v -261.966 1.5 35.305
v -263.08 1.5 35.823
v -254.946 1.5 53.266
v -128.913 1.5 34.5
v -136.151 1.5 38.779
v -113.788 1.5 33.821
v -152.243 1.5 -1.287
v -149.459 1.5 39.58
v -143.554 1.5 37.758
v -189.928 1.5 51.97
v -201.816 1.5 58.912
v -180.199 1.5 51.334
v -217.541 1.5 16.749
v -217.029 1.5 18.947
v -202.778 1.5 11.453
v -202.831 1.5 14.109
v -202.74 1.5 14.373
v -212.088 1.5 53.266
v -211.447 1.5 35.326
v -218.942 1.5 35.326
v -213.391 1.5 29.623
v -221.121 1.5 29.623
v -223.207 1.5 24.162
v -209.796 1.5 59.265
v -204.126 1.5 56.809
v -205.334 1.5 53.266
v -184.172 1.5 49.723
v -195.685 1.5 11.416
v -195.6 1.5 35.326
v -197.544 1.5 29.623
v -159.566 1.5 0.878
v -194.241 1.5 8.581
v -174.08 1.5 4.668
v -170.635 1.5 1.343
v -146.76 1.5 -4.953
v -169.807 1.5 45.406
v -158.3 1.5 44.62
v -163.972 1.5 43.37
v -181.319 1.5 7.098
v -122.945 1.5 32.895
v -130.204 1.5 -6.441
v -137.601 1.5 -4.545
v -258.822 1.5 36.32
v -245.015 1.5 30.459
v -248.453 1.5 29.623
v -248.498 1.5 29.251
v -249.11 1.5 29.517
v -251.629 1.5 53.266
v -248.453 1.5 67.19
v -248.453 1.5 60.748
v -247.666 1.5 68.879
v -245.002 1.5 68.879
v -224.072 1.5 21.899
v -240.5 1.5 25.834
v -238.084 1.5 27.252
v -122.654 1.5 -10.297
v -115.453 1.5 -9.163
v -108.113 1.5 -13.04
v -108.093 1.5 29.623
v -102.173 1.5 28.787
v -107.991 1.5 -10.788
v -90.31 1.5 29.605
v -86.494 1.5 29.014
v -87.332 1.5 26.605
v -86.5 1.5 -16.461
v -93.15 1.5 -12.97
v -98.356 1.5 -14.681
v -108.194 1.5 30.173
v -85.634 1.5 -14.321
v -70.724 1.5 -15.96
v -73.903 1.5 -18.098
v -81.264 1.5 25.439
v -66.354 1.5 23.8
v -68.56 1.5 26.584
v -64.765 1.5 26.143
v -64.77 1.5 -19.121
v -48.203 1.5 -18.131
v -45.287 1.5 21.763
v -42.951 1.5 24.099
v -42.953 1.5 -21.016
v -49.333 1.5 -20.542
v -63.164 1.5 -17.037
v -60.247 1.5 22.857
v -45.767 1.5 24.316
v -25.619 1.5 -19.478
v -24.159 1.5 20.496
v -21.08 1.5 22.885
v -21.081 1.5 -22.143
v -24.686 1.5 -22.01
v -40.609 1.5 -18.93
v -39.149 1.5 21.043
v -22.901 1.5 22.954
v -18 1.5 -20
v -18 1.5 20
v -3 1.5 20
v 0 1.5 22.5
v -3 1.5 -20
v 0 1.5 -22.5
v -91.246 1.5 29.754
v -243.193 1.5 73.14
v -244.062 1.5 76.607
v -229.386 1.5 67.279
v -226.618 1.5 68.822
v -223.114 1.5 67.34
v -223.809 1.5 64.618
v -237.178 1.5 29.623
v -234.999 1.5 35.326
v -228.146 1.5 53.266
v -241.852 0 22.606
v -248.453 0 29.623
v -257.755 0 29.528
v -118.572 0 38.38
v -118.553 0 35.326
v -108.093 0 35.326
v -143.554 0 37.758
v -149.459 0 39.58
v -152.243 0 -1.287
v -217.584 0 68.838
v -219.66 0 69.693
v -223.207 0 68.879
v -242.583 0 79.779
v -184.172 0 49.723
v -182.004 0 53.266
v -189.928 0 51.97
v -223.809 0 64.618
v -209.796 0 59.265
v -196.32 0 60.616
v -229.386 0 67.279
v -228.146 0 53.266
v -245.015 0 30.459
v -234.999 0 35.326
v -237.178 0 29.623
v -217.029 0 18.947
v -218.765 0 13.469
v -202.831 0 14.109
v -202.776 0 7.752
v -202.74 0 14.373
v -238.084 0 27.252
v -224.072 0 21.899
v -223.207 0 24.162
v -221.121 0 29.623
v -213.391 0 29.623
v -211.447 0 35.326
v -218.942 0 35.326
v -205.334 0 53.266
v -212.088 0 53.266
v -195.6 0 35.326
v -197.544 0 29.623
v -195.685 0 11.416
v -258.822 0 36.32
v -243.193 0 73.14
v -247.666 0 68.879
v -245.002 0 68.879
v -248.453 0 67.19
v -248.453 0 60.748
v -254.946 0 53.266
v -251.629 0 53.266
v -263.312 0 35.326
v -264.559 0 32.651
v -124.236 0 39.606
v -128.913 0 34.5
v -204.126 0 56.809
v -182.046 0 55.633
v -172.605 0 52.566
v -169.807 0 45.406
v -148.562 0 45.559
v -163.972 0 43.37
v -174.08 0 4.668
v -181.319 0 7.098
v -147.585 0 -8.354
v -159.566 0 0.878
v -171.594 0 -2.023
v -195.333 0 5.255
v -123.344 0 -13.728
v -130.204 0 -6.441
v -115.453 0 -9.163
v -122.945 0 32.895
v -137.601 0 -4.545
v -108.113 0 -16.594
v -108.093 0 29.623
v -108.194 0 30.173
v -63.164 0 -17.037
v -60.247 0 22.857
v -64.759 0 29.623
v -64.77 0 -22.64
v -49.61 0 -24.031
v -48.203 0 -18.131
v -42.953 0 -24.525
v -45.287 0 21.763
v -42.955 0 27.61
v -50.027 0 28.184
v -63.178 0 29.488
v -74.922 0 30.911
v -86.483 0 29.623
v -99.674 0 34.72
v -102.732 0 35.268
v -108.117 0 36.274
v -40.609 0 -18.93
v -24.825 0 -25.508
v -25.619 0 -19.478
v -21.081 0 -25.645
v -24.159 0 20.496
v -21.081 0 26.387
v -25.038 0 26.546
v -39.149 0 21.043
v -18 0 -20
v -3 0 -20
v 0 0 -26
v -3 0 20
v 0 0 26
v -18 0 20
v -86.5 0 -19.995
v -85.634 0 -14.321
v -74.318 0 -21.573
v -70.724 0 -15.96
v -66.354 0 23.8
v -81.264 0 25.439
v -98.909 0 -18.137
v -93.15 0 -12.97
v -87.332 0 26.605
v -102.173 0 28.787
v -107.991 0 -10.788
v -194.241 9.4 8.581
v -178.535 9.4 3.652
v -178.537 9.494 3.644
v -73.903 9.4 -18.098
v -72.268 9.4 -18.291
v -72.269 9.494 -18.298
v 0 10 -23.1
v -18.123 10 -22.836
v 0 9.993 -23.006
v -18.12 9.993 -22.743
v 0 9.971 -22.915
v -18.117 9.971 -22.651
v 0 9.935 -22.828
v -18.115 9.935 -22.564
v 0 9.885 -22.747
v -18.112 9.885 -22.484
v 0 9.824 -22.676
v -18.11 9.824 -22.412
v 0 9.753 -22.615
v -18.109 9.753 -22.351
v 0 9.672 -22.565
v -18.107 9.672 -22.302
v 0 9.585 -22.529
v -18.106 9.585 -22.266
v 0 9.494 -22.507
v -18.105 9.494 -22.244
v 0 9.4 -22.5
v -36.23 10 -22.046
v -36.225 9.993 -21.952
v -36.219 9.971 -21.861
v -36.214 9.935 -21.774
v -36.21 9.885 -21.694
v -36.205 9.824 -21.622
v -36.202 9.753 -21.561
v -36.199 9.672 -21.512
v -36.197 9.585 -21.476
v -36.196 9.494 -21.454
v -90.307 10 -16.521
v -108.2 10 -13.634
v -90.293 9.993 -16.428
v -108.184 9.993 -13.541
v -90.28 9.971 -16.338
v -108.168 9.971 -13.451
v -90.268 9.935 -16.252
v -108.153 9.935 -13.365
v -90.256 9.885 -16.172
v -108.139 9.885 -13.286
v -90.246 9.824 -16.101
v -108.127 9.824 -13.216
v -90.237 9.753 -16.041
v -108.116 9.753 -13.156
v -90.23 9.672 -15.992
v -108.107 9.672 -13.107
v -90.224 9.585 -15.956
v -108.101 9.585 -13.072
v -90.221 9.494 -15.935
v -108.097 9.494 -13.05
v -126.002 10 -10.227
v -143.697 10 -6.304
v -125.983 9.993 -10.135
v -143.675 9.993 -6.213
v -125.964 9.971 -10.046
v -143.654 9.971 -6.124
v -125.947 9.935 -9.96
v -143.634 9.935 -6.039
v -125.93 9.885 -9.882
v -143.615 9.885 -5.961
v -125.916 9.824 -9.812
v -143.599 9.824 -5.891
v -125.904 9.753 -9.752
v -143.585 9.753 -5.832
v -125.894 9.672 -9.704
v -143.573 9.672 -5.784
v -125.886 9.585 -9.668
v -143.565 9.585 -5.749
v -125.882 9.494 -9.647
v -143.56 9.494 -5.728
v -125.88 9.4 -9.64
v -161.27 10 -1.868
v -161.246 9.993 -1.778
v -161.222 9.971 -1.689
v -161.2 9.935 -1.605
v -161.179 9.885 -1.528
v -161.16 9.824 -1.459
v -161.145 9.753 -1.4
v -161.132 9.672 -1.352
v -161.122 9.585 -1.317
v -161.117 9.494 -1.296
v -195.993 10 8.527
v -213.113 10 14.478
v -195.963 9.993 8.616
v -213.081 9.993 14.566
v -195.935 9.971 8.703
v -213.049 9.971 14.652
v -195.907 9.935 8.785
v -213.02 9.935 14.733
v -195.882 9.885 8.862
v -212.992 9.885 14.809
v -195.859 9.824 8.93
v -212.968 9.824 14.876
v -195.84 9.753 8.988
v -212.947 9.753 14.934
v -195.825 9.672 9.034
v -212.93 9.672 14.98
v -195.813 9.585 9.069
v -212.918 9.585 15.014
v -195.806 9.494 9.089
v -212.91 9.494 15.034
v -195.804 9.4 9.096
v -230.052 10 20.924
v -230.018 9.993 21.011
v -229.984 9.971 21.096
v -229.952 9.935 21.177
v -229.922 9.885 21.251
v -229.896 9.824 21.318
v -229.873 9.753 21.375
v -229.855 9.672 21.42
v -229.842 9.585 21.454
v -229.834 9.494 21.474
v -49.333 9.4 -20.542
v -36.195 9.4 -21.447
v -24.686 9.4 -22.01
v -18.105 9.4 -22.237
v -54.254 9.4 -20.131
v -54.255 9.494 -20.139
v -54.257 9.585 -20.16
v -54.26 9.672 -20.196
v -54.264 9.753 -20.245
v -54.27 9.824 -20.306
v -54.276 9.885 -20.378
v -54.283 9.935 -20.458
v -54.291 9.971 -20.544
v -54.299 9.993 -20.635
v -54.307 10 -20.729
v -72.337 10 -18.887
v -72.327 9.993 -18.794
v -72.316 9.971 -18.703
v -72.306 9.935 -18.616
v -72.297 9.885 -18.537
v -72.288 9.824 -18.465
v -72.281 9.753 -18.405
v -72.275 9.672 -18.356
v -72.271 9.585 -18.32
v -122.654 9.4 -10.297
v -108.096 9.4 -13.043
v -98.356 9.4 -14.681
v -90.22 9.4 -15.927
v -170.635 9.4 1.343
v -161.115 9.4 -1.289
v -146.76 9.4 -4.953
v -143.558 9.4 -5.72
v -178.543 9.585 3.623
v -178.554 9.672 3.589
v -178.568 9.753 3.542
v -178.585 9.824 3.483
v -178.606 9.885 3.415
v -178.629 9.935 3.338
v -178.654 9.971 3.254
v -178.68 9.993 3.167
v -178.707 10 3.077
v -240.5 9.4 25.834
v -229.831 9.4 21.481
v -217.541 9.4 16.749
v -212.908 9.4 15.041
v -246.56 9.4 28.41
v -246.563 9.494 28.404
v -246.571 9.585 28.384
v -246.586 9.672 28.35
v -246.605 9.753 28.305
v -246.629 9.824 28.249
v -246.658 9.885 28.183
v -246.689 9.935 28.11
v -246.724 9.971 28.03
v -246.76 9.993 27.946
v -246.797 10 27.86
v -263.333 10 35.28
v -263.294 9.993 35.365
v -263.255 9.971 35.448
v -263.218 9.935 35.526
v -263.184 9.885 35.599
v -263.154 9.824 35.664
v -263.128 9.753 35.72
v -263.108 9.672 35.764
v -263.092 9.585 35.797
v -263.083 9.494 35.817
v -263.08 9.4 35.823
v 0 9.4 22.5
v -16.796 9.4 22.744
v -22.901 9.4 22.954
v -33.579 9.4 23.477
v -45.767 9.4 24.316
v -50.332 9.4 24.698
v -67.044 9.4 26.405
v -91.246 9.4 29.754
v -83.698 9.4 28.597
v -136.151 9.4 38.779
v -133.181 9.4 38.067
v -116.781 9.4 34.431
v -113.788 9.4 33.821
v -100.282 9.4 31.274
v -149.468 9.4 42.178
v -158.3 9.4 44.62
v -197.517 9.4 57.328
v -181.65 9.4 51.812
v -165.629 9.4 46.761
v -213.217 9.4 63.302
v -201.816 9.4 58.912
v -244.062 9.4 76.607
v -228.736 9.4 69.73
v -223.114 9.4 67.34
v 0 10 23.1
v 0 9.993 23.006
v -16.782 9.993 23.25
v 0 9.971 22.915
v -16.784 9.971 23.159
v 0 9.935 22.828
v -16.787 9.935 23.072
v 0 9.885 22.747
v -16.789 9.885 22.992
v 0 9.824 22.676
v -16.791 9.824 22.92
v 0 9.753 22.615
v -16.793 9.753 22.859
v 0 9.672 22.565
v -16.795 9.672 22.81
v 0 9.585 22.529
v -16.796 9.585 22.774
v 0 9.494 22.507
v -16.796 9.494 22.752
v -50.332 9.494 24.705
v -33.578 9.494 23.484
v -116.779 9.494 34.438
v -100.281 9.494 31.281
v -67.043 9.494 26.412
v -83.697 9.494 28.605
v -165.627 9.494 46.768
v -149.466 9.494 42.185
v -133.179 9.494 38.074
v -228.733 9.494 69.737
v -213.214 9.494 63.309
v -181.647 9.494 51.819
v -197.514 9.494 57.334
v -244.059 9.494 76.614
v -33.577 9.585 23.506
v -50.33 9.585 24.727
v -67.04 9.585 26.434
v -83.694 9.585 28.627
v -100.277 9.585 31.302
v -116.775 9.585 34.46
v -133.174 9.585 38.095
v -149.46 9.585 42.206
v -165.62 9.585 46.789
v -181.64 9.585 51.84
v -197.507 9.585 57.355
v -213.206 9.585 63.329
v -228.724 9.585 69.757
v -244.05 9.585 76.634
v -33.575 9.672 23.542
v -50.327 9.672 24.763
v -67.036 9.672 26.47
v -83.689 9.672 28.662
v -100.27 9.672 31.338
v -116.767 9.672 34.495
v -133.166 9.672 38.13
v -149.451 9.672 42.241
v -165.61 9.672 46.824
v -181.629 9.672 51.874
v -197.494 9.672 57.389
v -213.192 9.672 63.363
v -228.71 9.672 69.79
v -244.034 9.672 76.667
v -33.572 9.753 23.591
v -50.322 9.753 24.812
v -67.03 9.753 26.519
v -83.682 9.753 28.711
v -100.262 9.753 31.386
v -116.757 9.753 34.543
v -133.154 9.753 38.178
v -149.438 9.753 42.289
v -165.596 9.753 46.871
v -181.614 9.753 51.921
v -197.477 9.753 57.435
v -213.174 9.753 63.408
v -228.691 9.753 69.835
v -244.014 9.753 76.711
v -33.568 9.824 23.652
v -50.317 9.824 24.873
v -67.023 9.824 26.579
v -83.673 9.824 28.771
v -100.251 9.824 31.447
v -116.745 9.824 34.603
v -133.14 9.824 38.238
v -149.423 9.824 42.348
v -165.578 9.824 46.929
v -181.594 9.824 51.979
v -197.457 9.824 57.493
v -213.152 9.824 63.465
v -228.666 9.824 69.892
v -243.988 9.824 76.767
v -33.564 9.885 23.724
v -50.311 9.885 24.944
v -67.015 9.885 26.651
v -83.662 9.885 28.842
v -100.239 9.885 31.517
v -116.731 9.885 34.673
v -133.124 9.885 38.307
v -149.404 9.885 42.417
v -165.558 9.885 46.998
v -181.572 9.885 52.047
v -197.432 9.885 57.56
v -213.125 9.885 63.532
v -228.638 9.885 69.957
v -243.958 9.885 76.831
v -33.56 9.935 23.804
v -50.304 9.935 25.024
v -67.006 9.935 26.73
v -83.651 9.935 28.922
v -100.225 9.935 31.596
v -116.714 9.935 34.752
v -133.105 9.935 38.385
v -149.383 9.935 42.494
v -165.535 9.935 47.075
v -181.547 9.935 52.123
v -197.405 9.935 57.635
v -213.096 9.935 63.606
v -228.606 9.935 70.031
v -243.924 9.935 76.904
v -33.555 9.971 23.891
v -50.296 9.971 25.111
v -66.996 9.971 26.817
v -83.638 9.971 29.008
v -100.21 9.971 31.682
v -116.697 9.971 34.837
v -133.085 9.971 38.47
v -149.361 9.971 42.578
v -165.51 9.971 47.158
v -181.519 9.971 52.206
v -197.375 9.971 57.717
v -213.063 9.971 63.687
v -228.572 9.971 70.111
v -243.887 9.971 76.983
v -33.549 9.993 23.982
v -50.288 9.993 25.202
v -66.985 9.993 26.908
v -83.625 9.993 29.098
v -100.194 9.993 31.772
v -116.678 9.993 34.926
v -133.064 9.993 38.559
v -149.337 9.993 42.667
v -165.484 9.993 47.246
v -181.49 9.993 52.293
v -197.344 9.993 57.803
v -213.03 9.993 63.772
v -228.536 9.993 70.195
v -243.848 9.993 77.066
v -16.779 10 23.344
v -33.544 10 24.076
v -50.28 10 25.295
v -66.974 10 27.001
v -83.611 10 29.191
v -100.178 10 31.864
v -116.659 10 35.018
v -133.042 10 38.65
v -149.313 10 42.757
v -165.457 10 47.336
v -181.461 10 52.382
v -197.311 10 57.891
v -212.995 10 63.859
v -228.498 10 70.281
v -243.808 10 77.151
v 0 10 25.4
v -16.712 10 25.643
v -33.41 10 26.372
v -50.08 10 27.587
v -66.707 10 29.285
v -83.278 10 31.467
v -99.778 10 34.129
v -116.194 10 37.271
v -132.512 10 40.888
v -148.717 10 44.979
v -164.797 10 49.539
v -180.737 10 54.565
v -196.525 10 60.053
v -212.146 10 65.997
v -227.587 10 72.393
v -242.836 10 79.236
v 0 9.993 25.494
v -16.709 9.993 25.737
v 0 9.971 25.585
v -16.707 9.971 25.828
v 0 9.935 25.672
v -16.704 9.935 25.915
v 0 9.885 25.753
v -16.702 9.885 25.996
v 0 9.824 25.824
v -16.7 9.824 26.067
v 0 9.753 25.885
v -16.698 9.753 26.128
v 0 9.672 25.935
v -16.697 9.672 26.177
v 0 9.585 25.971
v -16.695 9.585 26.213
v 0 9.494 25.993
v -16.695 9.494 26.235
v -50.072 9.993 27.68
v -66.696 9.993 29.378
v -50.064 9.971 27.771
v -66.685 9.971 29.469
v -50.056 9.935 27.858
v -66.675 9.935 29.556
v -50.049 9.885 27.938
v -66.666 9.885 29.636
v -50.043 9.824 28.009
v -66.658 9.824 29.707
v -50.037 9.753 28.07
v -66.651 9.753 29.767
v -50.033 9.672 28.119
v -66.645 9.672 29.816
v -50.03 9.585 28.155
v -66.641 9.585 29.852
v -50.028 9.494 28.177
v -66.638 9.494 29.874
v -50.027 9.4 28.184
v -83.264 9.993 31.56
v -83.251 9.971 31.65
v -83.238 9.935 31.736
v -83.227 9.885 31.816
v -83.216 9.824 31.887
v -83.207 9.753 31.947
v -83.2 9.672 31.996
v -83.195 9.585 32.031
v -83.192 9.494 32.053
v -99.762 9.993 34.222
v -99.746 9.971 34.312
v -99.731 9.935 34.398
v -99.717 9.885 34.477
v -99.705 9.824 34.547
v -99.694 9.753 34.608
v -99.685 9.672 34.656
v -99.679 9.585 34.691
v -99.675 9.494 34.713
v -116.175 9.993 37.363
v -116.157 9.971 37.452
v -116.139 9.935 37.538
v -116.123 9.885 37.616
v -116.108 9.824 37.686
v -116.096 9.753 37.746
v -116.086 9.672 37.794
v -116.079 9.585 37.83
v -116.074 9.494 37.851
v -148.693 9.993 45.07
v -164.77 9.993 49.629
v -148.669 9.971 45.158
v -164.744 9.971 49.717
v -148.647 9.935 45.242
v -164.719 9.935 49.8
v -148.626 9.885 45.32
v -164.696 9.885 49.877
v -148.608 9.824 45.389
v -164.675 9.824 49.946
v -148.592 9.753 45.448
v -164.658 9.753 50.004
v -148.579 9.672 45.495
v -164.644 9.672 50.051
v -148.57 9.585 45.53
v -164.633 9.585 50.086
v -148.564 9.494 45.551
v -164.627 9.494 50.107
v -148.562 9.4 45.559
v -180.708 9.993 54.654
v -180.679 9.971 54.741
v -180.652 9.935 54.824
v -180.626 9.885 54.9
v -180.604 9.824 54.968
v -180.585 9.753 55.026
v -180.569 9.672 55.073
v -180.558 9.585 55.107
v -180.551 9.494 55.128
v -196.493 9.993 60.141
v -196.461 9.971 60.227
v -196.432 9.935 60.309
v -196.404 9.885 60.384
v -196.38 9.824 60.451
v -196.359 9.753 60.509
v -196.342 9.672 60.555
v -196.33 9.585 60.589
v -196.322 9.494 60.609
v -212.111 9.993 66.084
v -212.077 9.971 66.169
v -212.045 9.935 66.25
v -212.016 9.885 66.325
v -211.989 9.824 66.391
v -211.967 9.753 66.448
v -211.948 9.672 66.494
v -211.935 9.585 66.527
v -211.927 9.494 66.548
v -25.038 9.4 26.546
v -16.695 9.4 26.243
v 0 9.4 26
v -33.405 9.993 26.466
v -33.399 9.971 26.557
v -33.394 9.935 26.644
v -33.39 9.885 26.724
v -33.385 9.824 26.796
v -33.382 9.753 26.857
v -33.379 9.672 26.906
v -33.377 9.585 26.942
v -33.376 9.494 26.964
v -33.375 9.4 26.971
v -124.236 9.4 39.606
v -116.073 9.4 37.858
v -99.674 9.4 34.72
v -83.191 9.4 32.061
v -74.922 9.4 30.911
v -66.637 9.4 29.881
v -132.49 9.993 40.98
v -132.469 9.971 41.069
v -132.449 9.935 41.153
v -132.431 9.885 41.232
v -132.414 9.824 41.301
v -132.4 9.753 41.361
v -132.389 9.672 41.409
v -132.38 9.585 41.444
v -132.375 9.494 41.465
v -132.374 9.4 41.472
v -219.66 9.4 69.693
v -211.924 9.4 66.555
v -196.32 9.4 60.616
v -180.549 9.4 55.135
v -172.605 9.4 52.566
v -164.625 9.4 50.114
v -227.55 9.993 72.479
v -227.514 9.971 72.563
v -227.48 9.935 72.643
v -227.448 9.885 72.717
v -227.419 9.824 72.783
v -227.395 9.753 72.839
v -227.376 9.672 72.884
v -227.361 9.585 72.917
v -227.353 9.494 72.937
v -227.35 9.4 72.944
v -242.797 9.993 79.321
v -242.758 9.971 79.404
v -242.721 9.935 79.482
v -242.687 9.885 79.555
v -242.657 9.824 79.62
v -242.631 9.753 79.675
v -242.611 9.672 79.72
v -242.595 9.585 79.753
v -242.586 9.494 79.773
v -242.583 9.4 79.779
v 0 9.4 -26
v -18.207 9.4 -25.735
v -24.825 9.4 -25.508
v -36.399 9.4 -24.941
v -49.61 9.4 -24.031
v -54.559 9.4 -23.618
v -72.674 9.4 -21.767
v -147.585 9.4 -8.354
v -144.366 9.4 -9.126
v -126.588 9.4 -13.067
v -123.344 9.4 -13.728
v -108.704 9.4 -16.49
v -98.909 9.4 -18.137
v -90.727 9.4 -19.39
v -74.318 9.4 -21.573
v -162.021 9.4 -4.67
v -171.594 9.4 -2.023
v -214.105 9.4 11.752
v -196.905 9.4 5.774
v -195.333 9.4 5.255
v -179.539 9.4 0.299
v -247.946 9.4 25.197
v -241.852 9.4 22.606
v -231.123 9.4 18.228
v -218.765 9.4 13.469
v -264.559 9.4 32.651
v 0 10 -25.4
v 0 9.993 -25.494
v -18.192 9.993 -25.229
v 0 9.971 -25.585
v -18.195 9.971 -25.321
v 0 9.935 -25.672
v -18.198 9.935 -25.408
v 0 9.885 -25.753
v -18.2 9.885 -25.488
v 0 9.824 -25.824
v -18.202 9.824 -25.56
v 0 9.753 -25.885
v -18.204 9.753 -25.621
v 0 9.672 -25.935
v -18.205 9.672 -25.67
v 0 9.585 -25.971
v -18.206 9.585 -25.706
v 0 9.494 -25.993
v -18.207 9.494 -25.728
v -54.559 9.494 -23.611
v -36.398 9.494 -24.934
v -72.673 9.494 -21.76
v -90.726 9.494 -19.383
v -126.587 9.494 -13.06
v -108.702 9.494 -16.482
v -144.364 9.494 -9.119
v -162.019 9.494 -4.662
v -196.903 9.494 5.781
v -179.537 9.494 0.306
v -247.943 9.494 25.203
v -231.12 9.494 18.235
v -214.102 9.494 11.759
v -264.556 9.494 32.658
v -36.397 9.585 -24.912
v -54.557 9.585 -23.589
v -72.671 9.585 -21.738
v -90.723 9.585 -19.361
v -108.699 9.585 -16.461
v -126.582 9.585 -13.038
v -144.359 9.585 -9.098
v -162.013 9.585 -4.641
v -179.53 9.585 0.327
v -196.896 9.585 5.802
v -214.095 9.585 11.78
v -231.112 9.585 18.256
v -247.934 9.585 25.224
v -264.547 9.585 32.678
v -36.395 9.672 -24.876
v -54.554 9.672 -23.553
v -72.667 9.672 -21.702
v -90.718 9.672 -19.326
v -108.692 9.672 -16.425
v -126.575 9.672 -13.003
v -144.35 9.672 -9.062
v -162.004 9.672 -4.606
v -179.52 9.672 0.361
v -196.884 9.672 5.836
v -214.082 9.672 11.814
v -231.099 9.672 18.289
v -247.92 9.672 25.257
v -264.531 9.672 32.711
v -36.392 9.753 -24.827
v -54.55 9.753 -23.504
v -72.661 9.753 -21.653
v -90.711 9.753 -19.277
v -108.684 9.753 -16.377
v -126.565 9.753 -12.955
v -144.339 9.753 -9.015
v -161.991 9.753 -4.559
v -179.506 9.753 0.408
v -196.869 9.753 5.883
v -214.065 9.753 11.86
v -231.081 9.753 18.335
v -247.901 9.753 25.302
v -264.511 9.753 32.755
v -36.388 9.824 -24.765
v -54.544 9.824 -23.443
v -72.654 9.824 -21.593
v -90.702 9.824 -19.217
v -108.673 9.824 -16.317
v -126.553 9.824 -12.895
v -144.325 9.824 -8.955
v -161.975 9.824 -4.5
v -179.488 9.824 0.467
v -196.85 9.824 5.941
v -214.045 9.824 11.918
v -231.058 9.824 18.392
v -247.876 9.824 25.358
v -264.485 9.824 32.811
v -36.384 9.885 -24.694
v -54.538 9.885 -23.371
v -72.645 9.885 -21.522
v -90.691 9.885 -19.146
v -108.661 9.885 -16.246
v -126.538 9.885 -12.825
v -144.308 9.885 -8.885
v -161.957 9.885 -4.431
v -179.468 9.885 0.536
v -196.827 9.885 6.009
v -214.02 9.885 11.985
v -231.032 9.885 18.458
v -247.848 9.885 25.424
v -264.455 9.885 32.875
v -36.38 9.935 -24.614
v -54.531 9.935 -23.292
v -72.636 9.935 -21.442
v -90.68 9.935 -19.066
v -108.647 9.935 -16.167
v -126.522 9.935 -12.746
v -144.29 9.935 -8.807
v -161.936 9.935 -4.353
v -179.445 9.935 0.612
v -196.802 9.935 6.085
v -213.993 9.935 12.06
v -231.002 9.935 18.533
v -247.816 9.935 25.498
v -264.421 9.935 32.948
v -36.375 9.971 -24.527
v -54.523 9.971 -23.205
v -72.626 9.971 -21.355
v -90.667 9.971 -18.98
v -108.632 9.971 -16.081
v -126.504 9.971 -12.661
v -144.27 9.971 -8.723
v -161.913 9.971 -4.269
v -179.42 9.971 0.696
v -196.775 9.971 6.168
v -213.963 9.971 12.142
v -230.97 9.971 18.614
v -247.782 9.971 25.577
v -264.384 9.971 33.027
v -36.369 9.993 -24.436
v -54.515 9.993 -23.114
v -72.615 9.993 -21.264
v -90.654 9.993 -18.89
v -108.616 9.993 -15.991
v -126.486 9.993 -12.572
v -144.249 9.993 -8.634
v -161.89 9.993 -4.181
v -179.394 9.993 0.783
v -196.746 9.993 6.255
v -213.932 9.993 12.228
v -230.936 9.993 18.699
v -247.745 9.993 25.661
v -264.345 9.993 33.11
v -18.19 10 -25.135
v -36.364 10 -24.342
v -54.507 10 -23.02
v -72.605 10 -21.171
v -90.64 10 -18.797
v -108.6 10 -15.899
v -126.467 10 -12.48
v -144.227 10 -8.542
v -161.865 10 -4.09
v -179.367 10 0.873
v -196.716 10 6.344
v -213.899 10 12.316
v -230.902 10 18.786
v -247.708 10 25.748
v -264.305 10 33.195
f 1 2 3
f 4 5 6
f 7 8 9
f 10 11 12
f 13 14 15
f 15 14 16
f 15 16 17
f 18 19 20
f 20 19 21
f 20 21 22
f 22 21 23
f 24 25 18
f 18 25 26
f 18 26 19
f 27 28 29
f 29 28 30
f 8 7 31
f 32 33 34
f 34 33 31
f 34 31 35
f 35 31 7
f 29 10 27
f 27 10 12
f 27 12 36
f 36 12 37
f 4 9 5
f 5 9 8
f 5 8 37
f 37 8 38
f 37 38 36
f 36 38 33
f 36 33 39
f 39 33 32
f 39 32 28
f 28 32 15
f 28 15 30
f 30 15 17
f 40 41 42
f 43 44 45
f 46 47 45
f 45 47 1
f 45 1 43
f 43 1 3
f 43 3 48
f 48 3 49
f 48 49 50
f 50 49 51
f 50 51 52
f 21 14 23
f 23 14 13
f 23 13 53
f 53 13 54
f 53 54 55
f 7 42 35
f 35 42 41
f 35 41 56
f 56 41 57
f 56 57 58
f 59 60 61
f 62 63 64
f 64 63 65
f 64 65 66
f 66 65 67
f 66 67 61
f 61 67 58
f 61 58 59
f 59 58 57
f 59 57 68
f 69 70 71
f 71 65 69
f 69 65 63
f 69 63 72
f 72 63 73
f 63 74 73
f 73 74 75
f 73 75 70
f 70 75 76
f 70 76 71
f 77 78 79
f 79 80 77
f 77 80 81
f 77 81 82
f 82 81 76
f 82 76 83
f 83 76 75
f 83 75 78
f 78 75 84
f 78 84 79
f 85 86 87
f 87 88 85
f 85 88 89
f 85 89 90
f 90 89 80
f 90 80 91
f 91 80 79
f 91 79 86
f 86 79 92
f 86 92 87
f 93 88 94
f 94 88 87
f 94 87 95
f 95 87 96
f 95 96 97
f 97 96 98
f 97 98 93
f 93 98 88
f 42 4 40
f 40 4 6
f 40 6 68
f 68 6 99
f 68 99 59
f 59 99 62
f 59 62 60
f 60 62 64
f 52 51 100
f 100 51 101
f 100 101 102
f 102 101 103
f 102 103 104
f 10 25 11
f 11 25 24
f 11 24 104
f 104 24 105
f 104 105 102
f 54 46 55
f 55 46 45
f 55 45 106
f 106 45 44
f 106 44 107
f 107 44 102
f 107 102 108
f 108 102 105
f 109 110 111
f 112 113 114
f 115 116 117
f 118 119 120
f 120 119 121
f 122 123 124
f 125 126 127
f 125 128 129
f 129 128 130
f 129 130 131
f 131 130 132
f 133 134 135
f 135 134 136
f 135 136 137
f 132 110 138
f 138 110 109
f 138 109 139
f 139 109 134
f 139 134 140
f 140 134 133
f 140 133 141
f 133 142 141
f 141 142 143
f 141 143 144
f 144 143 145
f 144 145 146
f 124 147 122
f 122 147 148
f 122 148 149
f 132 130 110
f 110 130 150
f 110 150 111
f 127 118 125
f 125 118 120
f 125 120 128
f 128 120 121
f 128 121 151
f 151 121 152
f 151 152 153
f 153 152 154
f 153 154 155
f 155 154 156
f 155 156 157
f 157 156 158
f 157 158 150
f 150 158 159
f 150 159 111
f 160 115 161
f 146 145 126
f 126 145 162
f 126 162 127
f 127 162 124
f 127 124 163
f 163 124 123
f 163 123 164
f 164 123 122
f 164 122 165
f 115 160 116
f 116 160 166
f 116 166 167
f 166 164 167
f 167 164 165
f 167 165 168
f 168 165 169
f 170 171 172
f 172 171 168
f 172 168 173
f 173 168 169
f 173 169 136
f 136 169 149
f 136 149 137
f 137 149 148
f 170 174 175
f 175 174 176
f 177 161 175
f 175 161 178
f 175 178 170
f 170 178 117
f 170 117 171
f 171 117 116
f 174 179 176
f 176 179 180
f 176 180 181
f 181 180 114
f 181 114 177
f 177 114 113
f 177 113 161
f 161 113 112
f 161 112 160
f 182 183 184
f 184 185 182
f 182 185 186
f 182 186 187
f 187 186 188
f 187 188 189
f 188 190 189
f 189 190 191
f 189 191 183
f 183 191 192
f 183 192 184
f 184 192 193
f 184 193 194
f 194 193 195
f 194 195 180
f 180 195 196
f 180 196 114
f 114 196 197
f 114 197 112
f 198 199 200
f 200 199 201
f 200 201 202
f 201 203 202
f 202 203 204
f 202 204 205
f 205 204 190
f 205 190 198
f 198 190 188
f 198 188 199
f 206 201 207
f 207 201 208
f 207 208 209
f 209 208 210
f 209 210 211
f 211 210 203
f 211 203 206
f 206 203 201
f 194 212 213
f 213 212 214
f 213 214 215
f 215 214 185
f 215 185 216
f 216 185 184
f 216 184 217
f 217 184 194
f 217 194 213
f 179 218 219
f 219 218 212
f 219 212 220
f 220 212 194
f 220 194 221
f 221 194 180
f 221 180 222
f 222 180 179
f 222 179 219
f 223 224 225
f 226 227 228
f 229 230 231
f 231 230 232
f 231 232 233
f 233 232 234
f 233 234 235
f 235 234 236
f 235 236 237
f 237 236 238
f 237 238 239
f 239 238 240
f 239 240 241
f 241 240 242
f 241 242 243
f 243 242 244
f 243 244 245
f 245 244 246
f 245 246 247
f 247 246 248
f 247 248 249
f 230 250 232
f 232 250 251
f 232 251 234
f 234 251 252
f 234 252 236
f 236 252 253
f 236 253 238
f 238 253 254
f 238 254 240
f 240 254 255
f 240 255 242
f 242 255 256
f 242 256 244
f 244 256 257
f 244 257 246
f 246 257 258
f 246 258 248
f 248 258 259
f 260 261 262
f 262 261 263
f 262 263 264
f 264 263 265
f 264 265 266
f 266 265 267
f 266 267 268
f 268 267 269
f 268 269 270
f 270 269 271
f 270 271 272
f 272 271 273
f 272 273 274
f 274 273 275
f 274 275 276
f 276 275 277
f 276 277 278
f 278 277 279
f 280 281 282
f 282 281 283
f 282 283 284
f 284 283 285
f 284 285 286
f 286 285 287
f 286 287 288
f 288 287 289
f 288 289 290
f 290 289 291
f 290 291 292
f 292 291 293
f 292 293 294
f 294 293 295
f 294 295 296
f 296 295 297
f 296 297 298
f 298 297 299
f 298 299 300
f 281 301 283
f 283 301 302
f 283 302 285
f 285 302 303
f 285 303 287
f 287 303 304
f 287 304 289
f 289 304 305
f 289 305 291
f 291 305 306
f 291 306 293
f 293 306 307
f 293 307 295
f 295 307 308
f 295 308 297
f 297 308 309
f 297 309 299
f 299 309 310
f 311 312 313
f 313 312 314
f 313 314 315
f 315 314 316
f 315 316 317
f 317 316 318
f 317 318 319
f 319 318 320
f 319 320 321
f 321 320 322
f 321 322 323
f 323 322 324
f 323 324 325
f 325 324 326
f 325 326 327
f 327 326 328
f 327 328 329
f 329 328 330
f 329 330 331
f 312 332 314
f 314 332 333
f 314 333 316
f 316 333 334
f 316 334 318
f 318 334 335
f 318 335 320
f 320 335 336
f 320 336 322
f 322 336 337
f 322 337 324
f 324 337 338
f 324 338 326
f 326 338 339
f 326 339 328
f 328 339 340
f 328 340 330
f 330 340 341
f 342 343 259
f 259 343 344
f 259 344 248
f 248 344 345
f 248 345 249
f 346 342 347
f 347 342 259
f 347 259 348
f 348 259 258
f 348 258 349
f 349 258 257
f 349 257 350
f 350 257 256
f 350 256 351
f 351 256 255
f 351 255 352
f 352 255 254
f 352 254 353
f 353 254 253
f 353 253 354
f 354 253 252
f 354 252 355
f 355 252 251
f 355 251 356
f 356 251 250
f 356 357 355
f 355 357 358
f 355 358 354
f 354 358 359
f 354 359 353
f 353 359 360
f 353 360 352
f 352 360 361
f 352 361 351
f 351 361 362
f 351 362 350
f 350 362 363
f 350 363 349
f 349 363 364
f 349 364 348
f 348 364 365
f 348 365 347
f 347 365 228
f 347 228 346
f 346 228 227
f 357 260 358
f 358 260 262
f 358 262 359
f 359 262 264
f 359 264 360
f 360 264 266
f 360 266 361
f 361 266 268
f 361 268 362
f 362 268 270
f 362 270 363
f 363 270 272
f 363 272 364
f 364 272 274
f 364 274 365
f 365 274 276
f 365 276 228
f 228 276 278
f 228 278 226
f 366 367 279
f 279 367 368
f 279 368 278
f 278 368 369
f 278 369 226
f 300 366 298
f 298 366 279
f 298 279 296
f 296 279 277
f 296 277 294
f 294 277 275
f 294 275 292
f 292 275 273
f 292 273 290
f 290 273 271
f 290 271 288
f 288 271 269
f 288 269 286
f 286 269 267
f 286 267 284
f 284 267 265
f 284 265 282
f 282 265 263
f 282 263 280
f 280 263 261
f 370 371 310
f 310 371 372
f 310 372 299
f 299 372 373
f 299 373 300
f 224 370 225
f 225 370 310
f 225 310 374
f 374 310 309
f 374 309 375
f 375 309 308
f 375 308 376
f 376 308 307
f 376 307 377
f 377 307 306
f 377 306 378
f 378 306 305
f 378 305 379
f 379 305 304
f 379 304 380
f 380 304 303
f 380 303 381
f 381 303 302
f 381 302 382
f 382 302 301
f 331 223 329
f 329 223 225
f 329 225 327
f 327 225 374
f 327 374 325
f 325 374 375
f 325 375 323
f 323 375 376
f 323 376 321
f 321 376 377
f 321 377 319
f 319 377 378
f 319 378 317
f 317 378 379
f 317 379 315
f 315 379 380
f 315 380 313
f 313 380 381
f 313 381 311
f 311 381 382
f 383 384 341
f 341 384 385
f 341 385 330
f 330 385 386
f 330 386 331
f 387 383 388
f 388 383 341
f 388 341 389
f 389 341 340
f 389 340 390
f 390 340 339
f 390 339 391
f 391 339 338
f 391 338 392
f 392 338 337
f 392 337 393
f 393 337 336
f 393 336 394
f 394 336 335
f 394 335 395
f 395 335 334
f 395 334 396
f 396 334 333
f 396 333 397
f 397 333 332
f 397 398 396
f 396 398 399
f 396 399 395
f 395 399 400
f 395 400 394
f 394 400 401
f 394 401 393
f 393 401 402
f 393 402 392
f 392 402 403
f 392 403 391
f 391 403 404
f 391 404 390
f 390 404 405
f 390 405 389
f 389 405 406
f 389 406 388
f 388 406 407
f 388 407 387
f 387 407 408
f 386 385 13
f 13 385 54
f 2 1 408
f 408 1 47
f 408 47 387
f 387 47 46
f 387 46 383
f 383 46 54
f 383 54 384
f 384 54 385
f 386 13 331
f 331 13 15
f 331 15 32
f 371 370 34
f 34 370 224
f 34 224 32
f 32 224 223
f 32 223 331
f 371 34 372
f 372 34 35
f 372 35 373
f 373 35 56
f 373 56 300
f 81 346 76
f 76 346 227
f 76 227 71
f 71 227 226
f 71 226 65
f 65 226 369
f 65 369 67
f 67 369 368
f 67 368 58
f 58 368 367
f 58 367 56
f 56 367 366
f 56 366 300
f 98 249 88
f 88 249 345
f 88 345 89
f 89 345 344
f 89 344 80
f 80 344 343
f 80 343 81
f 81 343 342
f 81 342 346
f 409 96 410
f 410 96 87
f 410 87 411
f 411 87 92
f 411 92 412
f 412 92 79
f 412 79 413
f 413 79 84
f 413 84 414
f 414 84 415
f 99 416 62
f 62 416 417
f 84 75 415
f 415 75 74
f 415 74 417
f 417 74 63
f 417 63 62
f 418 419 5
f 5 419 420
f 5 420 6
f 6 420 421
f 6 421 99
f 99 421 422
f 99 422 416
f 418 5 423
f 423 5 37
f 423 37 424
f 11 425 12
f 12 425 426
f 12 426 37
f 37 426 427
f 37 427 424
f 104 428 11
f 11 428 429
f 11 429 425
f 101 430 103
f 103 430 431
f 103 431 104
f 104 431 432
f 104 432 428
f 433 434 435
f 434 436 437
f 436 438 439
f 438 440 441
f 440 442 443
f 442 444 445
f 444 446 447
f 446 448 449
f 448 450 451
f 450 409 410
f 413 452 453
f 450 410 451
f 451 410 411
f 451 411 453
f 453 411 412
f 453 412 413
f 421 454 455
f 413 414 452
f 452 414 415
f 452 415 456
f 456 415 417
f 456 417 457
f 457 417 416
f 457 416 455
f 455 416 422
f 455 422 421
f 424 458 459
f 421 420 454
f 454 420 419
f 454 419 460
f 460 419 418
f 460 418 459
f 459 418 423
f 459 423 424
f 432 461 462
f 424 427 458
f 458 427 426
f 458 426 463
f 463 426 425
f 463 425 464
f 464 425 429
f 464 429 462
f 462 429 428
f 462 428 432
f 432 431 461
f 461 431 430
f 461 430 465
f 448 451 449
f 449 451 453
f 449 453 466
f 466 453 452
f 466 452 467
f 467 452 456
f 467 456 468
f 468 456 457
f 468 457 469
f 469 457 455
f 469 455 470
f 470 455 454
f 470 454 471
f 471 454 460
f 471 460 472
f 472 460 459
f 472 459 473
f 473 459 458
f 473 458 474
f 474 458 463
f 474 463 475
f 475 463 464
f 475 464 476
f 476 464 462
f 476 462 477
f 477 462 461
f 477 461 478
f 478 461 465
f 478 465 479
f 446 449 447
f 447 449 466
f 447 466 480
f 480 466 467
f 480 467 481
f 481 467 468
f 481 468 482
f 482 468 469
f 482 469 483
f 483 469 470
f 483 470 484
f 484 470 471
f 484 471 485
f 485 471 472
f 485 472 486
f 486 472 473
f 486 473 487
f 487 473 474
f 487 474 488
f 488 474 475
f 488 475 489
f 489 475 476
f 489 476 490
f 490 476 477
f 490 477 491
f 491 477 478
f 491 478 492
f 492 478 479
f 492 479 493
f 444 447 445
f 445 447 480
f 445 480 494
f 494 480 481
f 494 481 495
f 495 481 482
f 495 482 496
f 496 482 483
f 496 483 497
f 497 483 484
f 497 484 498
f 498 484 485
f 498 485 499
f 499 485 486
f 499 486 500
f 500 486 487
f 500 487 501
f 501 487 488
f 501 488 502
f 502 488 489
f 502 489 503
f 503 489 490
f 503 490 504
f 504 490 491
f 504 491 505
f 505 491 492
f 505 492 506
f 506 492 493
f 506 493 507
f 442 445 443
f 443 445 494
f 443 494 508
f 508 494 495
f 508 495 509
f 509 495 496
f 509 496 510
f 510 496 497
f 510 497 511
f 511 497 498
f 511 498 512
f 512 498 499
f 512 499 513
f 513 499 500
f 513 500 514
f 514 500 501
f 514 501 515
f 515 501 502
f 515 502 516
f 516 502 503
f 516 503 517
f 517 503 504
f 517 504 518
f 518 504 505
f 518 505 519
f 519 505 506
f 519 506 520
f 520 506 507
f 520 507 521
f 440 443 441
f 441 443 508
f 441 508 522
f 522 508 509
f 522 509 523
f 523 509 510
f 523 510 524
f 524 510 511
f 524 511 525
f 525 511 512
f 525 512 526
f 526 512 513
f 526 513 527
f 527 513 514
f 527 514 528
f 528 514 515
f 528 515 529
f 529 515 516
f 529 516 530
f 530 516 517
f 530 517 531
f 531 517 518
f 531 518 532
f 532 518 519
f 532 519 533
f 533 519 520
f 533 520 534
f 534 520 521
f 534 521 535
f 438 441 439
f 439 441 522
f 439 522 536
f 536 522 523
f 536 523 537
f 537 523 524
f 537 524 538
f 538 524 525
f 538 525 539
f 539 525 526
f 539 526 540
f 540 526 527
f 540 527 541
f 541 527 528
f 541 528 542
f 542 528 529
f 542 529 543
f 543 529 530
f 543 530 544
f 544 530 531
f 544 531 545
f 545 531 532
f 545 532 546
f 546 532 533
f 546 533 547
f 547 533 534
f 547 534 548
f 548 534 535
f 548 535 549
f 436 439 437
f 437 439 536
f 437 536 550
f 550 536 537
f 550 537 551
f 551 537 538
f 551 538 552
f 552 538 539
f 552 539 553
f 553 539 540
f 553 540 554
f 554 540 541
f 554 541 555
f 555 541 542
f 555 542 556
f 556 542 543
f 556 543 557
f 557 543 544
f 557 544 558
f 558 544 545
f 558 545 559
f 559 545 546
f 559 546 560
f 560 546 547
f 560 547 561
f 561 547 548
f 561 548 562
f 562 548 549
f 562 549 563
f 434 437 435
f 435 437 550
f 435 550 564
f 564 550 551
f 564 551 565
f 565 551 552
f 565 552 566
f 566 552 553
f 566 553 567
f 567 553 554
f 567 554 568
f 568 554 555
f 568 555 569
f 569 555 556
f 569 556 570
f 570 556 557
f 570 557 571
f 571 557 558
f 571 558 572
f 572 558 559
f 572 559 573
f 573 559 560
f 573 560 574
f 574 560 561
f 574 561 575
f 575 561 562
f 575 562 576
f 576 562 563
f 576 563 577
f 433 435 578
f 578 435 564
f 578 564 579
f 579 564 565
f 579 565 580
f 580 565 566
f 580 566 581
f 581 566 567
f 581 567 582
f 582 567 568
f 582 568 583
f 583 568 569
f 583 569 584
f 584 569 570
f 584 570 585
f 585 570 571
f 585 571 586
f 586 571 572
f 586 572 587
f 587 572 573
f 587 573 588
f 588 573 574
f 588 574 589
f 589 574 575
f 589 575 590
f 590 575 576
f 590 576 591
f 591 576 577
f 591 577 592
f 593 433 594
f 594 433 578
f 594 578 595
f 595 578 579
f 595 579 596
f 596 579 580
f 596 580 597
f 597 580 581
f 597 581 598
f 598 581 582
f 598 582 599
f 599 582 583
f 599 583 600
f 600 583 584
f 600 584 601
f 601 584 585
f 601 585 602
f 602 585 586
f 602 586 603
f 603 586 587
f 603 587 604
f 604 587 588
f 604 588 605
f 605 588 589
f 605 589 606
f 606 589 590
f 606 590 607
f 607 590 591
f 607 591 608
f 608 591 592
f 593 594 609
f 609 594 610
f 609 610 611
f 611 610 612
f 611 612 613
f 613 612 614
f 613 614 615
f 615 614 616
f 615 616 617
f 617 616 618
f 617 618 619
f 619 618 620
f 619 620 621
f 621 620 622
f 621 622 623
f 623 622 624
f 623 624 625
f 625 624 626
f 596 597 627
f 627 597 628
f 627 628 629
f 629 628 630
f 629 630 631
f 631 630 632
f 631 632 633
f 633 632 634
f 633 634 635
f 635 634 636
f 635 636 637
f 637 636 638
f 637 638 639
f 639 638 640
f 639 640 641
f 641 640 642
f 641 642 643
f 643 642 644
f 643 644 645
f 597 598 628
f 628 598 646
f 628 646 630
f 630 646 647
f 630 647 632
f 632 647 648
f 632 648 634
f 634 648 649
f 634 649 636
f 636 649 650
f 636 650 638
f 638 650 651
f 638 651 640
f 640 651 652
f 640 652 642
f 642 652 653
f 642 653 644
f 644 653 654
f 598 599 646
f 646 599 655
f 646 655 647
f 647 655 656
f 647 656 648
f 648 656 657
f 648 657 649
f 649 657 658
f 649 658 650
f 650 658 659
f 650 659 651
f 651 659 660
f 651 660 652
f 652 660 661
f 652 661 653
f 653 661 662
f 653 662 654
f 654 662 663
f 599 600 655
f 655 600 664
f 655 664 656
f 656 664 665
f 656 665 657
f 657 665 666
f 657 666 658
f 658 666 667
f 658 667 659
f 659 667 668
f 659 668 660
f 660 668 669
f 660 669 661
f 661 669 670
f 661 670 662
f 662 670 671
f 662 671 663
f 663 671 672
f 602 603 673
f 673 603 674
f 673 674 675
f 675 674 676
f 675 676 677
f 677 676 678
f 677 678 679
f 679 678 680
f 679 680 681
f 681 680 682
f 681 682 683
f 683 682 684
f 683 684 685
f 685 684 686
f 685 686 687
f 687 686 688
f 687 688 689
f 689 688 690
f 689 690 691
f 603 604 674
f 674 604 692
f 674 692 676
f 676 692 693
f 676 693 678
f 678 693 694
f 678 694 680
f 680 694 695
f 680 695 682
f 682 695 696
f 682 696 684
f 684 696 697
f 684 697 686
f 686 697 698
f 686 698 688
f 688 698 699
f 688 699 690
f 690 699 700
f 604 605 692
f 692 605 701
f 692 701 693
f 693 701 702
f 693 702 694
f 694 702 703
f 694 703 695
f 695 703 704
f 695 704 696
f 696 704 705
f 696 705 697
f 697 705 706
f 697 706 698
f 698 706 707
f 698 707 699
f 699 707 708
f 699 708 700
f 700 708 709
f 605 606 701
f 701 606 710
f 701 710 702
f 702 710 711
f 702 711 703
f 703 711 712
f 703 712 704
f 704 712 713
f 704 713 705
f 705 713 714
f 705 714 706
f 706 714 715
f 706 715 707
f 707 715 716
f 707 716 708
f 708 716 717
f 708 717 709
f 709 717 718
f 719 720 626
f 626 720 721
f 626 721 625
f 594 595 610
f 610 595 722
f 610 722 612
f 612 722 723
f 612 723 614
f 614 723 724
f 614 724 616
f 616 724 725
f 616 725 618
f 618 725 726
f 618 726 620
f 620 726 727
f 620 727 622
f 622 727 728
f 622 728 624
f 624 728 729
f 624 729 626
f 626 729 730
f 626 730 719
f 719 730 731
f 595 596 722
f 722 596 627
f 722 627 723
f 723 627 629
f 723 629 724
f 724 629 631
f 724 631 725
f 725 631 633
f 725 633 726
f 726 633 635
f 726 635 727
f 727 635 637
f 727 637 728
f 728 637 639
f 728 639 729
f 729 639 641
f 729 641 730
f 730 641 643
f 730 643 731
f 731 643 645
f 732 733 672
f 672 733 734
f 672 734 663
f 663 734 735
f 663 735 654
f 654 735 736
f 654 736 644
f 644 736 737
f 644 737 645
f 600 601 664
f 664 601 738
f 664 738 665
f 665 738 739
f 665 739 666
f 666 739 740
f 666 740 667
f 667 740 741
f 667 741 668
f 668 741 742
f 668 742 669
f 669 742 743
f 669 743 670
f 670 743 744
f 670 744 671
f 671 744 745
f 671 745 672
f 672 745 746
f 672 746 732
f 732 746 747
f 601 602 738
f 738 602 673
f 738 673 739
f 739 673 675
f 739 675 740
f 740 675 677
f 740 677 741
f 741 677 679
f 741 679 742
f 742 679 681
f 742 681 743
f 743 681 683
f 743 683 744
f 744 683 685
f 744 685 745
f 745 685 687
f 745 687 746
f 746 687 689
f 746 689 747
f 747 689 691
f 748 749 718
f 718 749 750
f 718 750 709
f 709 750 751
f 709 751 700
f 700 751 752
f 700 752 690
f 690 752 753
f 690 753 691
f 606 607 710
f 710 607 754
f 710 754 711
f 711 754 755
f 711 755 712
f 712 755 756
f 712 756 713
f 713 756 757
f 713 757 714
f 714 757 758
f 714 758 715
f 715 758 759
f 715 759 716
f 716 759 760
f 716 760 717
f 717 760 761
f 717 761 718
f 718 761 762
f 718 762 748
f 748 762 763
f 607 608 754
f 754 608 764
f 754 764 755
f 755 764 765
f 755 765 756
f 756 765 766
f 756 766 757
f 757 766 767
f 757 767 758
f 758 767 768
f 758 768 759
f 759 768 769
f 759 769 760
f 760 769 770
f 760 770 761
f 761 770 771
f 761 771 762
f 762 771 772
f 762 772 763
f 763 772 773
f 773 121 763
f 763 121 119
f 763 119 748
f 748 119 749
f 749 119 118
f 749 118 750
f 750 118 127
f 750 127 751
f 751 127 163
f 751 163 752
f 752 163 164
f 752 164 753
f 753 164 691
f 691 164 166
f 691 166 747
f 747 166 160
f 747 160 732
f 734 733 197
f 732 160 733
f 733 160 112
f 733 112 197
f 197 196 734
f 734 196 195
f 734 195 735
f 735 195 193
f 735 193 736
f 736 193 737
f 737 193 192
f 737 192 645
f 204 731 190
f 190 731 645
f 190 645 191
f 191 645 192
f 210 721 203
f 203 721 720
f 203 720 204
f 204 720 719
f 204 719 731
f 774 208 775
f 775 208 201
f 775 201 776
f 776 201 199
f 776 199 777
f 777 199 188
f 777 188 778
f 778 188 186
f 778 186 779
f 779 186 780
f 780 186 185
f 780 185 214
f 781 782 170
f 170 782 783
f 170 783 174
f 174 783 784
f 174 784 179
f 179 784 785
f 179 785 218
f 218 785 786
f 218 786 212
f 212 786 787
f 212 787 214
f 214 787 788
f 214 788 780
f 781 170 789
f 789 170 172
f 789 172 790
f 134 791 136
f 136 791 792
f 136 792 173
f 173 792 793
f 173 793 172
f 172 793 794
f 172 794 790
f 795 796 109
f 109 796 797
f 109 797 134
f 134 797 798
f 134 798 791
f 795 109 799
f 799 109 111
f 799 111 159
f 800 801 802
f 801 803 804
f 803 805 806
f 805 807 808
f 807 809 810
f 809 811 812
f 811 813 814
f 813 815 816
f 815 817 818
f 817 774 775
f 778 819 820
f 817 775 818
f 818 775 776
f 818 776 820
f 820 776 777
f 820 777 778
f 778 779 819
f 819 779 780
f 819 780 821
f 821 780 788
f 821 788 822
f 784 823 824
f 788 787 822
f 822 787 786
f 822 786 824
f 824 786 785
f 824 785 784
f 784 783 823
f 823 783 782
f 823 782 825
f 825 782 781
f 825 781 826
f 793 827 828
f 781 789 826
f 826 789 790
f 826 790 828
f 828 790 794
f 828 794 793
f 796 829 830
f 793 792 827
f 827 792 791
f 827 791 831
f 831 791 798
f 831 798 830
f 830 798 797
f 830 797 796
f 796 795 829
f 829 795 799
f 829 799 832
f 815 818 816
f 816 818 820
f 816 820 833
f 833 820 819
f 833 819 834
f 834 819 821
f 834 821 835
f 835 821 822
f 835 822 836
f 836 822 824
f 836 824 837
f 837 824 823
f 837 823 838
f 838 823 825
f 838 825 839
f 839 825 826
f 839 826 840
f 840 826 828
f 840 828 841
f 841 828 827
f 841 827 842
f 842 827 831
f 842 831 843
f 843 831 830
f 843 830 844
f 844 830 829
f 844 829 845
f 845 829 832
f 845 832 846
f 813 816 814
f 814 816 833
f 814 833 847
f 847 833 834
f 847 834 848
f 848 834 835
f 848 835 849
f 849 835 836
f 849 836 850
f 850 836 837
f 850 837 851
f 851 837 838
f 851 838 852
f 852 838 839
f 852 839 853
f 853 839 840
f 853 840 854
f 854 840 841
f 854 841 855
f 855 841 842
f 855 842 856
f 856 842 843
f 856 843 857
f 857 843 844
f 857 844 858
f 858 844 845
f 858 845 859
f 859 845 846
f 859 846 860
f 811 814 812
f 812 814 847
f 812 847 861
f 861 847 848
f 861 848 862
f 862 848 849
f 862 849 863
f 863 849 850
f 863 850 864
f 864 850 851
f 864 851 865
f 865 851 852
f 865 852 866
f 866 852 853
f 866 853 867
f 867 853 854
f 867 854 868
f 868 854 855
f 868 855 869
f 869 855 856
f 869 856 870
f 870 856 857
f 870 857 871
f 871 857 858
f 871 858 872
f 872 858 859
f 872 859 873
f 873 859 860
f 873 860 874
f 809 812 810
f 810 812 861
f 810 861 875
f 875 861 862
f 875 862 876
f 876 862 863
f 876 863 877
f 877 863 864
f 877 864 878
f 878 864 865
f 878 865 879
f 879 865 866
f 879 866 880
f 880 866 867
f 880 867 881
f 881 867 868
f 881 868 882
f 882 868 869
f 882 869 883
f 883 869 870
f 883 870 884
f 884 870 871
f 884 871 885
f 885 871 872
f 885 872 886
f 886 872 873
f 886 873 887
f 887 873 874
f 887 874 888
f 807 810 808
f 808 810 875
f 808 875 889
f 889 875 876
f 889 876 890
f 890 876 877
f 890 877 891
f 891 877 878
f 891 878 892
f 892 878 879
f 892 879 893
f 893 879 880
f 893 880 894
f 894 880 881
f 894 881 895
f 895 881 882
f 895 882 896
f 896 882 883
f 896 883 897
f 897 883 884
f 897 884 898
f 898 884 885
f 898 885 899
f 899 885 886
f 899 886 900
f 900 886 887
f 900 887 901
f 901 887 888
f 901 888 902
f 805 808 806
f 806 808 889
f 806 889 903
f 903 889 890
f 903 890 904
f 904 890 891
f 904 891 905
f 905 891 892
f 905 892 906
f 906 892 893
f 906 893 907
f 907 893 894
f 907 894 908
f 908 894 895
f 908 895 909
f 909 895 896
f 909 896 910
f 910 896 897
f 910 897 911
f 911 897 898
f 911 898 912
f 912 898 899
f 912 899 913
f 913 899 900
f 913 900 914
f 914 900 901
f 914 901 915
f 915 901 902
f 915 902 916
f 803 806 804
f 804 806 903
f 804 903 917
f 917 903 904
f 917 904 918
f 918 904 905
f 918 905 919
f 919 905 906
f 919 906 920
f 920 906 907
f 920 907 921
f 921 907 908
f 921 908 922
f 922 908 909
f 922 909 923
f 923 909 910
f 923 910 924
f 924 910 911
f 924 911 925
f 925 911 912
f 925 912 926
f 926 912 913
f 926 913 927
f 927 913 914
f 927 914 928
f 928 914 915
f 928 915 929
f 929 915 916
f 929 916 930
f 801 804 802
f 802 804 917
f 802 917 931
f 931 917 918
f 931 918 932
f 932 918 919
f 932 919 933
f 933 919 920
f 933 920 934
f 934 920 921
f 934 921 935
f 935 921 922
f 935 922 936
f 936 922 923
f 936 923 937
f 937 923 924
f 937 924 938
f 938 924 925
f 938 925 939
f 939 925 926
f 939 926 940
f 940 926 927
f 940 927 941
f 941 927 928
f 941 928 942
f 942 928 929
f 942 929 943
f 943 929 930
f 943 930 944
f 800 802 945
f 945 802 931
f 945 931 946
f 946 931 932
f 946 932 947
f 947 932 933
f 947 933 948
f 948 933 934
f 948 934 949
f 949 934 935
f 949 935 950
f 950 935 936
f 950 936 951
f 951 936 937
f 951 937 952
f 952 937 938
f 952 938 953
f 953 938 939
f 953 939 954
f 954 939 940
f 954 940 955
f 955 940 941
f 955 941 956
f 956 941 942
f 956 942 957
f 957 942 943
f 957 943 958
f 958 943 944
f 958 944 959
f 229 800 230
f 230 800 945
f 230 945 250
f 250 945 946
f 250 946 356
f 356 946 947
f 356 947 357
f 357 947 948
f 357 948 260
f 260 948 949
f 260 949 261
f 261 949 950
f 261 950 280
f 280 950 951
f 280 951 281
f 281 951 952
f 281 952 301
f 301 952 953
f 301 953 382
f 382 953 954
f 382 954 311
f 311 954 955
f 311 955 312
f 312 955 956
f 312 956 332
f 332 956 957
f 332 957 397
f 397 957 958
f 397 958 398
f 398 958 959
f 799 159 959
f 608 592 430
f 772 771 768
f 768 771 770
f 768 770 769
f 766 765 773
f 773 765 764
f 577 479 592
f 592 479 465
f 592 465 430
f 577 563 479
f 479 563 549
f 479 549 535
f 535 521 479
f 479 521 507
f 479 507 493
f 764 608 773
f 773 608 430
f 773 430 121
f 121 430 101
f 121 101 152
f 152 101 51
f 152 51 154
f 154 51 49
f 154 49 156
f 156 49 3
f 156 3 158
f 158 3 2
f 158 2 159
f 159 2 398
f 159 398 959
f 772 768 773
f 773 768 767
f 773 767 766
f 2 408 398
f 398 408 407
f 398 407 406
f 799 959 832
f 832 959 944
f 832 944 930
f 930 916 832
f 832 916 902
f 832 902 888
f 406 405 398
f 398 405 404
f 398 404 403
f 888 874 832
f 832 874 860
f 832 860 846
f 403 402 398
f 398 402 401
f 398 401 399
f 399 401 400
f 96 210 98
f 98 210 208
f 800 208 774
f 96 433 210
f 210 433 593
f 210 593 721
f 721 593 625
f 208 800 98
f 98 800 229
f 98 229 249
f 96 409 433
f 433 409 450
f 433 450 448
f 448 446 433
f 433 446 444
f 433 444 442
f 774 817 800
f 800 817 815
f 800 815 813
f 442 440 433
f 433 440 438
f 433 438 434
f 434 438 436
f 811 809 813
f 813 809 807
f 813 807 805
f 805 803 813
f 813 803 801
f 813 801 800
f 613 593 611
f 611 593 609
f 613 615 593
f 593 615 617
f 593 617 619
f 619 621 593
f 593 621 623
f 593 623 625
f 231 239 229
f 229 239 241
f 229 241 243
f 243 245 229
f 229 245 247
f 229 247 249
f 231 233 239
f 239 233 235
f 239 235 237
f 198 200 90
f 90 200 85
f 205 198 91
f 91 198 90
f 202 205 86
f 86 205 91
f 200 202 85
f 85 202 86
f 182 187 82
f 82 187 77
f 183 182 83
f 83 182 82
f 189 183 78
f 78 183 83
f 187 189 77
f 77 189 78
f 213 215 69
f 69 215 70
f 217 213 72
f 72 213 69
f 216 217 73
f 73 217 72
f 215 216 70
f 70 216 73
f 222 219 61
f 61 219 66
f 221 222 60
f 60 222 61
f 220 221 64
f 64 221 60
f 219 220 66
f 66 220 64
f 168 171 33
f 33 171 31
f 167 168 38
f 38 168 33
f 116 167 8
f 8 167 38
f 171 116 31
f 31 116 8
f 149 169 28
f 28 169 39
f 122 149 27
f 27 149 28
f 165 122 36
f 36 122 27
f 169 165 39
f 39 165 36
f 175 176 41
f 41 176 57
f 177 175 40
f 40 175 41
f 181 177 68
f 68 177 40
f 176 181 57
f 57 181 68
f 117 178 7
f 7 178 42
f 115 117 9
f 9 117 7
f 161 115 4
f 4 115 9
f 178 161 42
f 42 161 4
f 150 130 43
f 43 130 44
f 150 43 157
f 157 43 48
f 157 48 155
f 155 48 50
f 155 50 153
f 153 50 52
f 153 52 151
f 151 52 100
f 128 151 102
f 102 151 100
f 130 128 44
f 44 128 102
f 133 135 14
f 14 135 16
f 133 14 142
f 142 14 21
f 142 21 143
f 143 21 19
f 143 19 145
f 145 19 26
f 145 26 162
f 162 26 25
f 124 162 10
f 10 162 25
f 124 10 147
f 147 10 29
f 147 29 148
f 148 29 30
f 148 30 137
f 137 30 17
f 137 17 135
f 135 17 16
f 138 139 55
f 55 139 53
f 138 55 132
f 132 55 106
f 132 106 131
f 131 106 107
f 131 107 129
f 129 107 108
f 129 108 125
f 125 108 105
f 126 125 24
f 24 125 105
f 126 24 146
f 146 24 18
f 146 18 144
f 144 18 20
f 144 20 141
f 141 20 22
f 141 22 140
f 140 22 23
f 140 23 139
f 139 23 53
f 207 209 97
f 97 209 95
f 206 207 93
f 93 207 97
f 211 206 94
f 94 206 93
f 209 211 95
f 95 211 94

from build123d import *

# Parameters (mm, degrees)
REVOLVE1_ANGLE     = 25
SKETCH4_W          = 15
SKETCH4_H          = 40
CUT_EXTRUDE3_DEPTH = 10


with BuildPart() as part:
    # Sketch1 → Revolve1 (revolve)
    with BuildSketch(Plane(origin=(0, 0, 0), x_dir=(0, 0, -1), z_dir=(1, 0, 0))):
        with BuildLine():
            ThreePointArc((22.5, 9.4), (22.675735931, 9.824264069), (23.1, 10))
            Line((23.1, 10), (25.4, 10))
            ThreePointArc((25.4, 10), (25.824264069, 9.824264069), (26, 9.4))
            Line((26, 9.4), (26, 0))
            Line((26, 0), (-26, 0))
            Line((-26, 0), (-26, 9.4))
            ThreePointArc((-26, 9.4), (-25.824264069, 9.824264069), (-25.4, 10))
            Line((-25.4, 10), (-23.1, 10))
            ThreePointArc((-23.1, 10), (-22.675735931, 9.824264069), (-22.5, 9.4))
            Line((-22.5, 9.4), (-22.5, 1.5))
            Line((-22.5, 1.5), (22.5, 1.5))
            Line((22.5, 1.5), (22.5, 9.4))
        make_face()
    revolve(axis=Axis((0, -3.326119583, 600), (0, 1, 0)), revolution_arc=REVOLVE1_ANGLE)

    # Sketch4 → Cut-Extrude3 (cut)
    with BuildSketch(Plane(origin=(0, 0, 0), x_dir=(1, 0, 0), z_dir=(0, 1, 0))):
        with Locations((-10.5, 0)):
            Rectangle(SKETCH4_W, SKETCH4_H)
        Polygon((-40.608807593, 18.930468426), (-39.149401653, -21.042899387), (-24.159388723, -20.495622159), (-25.618794663, 19.477745654), align=None)
        Polygon((-63.163540118, 17.036763248), (-60.246671595, -22.856743467), (-45.286606577, -21.762917771), (-48.2034751, 18.130588944), align=None)
        Polygon((-85.634163481, 14.321406142), (-81.263716507, -25.439116908), (-66.353520363, -23.800199292), (-70.723967338, 15.960323758), align=None)
        Polygon((-107.990755592, 10.788012904), (-102.172549893, -28.786580998), (-87.33207718, -26.60475386), (-93.150282879, 12.969840041), align=None)
        Polygon((-130.203546201, 6.441288631), (-122.945329355, -32.894678221), (-108.194341785, -30.172846904), (-115.452558632, 9.163119949), align=None)
        Polygon((-152.24295655, 1.287021464), (-143.554393666, -37.757938198), (-128.912533793, -34.499727117), (-137.601096677, 4.545232545), align=None)
        Polygon((-174.079638754, -4.667925128), (-163.972299604, -43.369884966), (-149.459064664, -39.579632785), (-159.566403814, -0.877672947), align=None)
        Polygon((-195.684514881, -11.415621482), (-184.171858492, -49.723045604), (-169.806574446, -45.405799458), (-181.319230835, -7.098375336), align=None)
        Polygon((-217.028815677, -18.947082302), (-204.126172411, -56.808960184), (-189.927968205, -51.970468959), (-202.830611472, -14.108591077), align=None)
        Polygon((-238.084118872, -27.252278624), (-223.808670008, -64.618193035), (-209.796452104, -59.264899711), (-224.071900968, -21.8989853), align=None)
        Polygon((-258.822387025, -36.320151172), (-243.193141886, -73.14034531), (-229.385569084, -67.279378383), (-245.014814224, -30.459184245), align=None)
    extrude(amount=CUT_EXTRUDE3_DEPTH, mode=Mode.SUBTRACT)


solid = part.part
